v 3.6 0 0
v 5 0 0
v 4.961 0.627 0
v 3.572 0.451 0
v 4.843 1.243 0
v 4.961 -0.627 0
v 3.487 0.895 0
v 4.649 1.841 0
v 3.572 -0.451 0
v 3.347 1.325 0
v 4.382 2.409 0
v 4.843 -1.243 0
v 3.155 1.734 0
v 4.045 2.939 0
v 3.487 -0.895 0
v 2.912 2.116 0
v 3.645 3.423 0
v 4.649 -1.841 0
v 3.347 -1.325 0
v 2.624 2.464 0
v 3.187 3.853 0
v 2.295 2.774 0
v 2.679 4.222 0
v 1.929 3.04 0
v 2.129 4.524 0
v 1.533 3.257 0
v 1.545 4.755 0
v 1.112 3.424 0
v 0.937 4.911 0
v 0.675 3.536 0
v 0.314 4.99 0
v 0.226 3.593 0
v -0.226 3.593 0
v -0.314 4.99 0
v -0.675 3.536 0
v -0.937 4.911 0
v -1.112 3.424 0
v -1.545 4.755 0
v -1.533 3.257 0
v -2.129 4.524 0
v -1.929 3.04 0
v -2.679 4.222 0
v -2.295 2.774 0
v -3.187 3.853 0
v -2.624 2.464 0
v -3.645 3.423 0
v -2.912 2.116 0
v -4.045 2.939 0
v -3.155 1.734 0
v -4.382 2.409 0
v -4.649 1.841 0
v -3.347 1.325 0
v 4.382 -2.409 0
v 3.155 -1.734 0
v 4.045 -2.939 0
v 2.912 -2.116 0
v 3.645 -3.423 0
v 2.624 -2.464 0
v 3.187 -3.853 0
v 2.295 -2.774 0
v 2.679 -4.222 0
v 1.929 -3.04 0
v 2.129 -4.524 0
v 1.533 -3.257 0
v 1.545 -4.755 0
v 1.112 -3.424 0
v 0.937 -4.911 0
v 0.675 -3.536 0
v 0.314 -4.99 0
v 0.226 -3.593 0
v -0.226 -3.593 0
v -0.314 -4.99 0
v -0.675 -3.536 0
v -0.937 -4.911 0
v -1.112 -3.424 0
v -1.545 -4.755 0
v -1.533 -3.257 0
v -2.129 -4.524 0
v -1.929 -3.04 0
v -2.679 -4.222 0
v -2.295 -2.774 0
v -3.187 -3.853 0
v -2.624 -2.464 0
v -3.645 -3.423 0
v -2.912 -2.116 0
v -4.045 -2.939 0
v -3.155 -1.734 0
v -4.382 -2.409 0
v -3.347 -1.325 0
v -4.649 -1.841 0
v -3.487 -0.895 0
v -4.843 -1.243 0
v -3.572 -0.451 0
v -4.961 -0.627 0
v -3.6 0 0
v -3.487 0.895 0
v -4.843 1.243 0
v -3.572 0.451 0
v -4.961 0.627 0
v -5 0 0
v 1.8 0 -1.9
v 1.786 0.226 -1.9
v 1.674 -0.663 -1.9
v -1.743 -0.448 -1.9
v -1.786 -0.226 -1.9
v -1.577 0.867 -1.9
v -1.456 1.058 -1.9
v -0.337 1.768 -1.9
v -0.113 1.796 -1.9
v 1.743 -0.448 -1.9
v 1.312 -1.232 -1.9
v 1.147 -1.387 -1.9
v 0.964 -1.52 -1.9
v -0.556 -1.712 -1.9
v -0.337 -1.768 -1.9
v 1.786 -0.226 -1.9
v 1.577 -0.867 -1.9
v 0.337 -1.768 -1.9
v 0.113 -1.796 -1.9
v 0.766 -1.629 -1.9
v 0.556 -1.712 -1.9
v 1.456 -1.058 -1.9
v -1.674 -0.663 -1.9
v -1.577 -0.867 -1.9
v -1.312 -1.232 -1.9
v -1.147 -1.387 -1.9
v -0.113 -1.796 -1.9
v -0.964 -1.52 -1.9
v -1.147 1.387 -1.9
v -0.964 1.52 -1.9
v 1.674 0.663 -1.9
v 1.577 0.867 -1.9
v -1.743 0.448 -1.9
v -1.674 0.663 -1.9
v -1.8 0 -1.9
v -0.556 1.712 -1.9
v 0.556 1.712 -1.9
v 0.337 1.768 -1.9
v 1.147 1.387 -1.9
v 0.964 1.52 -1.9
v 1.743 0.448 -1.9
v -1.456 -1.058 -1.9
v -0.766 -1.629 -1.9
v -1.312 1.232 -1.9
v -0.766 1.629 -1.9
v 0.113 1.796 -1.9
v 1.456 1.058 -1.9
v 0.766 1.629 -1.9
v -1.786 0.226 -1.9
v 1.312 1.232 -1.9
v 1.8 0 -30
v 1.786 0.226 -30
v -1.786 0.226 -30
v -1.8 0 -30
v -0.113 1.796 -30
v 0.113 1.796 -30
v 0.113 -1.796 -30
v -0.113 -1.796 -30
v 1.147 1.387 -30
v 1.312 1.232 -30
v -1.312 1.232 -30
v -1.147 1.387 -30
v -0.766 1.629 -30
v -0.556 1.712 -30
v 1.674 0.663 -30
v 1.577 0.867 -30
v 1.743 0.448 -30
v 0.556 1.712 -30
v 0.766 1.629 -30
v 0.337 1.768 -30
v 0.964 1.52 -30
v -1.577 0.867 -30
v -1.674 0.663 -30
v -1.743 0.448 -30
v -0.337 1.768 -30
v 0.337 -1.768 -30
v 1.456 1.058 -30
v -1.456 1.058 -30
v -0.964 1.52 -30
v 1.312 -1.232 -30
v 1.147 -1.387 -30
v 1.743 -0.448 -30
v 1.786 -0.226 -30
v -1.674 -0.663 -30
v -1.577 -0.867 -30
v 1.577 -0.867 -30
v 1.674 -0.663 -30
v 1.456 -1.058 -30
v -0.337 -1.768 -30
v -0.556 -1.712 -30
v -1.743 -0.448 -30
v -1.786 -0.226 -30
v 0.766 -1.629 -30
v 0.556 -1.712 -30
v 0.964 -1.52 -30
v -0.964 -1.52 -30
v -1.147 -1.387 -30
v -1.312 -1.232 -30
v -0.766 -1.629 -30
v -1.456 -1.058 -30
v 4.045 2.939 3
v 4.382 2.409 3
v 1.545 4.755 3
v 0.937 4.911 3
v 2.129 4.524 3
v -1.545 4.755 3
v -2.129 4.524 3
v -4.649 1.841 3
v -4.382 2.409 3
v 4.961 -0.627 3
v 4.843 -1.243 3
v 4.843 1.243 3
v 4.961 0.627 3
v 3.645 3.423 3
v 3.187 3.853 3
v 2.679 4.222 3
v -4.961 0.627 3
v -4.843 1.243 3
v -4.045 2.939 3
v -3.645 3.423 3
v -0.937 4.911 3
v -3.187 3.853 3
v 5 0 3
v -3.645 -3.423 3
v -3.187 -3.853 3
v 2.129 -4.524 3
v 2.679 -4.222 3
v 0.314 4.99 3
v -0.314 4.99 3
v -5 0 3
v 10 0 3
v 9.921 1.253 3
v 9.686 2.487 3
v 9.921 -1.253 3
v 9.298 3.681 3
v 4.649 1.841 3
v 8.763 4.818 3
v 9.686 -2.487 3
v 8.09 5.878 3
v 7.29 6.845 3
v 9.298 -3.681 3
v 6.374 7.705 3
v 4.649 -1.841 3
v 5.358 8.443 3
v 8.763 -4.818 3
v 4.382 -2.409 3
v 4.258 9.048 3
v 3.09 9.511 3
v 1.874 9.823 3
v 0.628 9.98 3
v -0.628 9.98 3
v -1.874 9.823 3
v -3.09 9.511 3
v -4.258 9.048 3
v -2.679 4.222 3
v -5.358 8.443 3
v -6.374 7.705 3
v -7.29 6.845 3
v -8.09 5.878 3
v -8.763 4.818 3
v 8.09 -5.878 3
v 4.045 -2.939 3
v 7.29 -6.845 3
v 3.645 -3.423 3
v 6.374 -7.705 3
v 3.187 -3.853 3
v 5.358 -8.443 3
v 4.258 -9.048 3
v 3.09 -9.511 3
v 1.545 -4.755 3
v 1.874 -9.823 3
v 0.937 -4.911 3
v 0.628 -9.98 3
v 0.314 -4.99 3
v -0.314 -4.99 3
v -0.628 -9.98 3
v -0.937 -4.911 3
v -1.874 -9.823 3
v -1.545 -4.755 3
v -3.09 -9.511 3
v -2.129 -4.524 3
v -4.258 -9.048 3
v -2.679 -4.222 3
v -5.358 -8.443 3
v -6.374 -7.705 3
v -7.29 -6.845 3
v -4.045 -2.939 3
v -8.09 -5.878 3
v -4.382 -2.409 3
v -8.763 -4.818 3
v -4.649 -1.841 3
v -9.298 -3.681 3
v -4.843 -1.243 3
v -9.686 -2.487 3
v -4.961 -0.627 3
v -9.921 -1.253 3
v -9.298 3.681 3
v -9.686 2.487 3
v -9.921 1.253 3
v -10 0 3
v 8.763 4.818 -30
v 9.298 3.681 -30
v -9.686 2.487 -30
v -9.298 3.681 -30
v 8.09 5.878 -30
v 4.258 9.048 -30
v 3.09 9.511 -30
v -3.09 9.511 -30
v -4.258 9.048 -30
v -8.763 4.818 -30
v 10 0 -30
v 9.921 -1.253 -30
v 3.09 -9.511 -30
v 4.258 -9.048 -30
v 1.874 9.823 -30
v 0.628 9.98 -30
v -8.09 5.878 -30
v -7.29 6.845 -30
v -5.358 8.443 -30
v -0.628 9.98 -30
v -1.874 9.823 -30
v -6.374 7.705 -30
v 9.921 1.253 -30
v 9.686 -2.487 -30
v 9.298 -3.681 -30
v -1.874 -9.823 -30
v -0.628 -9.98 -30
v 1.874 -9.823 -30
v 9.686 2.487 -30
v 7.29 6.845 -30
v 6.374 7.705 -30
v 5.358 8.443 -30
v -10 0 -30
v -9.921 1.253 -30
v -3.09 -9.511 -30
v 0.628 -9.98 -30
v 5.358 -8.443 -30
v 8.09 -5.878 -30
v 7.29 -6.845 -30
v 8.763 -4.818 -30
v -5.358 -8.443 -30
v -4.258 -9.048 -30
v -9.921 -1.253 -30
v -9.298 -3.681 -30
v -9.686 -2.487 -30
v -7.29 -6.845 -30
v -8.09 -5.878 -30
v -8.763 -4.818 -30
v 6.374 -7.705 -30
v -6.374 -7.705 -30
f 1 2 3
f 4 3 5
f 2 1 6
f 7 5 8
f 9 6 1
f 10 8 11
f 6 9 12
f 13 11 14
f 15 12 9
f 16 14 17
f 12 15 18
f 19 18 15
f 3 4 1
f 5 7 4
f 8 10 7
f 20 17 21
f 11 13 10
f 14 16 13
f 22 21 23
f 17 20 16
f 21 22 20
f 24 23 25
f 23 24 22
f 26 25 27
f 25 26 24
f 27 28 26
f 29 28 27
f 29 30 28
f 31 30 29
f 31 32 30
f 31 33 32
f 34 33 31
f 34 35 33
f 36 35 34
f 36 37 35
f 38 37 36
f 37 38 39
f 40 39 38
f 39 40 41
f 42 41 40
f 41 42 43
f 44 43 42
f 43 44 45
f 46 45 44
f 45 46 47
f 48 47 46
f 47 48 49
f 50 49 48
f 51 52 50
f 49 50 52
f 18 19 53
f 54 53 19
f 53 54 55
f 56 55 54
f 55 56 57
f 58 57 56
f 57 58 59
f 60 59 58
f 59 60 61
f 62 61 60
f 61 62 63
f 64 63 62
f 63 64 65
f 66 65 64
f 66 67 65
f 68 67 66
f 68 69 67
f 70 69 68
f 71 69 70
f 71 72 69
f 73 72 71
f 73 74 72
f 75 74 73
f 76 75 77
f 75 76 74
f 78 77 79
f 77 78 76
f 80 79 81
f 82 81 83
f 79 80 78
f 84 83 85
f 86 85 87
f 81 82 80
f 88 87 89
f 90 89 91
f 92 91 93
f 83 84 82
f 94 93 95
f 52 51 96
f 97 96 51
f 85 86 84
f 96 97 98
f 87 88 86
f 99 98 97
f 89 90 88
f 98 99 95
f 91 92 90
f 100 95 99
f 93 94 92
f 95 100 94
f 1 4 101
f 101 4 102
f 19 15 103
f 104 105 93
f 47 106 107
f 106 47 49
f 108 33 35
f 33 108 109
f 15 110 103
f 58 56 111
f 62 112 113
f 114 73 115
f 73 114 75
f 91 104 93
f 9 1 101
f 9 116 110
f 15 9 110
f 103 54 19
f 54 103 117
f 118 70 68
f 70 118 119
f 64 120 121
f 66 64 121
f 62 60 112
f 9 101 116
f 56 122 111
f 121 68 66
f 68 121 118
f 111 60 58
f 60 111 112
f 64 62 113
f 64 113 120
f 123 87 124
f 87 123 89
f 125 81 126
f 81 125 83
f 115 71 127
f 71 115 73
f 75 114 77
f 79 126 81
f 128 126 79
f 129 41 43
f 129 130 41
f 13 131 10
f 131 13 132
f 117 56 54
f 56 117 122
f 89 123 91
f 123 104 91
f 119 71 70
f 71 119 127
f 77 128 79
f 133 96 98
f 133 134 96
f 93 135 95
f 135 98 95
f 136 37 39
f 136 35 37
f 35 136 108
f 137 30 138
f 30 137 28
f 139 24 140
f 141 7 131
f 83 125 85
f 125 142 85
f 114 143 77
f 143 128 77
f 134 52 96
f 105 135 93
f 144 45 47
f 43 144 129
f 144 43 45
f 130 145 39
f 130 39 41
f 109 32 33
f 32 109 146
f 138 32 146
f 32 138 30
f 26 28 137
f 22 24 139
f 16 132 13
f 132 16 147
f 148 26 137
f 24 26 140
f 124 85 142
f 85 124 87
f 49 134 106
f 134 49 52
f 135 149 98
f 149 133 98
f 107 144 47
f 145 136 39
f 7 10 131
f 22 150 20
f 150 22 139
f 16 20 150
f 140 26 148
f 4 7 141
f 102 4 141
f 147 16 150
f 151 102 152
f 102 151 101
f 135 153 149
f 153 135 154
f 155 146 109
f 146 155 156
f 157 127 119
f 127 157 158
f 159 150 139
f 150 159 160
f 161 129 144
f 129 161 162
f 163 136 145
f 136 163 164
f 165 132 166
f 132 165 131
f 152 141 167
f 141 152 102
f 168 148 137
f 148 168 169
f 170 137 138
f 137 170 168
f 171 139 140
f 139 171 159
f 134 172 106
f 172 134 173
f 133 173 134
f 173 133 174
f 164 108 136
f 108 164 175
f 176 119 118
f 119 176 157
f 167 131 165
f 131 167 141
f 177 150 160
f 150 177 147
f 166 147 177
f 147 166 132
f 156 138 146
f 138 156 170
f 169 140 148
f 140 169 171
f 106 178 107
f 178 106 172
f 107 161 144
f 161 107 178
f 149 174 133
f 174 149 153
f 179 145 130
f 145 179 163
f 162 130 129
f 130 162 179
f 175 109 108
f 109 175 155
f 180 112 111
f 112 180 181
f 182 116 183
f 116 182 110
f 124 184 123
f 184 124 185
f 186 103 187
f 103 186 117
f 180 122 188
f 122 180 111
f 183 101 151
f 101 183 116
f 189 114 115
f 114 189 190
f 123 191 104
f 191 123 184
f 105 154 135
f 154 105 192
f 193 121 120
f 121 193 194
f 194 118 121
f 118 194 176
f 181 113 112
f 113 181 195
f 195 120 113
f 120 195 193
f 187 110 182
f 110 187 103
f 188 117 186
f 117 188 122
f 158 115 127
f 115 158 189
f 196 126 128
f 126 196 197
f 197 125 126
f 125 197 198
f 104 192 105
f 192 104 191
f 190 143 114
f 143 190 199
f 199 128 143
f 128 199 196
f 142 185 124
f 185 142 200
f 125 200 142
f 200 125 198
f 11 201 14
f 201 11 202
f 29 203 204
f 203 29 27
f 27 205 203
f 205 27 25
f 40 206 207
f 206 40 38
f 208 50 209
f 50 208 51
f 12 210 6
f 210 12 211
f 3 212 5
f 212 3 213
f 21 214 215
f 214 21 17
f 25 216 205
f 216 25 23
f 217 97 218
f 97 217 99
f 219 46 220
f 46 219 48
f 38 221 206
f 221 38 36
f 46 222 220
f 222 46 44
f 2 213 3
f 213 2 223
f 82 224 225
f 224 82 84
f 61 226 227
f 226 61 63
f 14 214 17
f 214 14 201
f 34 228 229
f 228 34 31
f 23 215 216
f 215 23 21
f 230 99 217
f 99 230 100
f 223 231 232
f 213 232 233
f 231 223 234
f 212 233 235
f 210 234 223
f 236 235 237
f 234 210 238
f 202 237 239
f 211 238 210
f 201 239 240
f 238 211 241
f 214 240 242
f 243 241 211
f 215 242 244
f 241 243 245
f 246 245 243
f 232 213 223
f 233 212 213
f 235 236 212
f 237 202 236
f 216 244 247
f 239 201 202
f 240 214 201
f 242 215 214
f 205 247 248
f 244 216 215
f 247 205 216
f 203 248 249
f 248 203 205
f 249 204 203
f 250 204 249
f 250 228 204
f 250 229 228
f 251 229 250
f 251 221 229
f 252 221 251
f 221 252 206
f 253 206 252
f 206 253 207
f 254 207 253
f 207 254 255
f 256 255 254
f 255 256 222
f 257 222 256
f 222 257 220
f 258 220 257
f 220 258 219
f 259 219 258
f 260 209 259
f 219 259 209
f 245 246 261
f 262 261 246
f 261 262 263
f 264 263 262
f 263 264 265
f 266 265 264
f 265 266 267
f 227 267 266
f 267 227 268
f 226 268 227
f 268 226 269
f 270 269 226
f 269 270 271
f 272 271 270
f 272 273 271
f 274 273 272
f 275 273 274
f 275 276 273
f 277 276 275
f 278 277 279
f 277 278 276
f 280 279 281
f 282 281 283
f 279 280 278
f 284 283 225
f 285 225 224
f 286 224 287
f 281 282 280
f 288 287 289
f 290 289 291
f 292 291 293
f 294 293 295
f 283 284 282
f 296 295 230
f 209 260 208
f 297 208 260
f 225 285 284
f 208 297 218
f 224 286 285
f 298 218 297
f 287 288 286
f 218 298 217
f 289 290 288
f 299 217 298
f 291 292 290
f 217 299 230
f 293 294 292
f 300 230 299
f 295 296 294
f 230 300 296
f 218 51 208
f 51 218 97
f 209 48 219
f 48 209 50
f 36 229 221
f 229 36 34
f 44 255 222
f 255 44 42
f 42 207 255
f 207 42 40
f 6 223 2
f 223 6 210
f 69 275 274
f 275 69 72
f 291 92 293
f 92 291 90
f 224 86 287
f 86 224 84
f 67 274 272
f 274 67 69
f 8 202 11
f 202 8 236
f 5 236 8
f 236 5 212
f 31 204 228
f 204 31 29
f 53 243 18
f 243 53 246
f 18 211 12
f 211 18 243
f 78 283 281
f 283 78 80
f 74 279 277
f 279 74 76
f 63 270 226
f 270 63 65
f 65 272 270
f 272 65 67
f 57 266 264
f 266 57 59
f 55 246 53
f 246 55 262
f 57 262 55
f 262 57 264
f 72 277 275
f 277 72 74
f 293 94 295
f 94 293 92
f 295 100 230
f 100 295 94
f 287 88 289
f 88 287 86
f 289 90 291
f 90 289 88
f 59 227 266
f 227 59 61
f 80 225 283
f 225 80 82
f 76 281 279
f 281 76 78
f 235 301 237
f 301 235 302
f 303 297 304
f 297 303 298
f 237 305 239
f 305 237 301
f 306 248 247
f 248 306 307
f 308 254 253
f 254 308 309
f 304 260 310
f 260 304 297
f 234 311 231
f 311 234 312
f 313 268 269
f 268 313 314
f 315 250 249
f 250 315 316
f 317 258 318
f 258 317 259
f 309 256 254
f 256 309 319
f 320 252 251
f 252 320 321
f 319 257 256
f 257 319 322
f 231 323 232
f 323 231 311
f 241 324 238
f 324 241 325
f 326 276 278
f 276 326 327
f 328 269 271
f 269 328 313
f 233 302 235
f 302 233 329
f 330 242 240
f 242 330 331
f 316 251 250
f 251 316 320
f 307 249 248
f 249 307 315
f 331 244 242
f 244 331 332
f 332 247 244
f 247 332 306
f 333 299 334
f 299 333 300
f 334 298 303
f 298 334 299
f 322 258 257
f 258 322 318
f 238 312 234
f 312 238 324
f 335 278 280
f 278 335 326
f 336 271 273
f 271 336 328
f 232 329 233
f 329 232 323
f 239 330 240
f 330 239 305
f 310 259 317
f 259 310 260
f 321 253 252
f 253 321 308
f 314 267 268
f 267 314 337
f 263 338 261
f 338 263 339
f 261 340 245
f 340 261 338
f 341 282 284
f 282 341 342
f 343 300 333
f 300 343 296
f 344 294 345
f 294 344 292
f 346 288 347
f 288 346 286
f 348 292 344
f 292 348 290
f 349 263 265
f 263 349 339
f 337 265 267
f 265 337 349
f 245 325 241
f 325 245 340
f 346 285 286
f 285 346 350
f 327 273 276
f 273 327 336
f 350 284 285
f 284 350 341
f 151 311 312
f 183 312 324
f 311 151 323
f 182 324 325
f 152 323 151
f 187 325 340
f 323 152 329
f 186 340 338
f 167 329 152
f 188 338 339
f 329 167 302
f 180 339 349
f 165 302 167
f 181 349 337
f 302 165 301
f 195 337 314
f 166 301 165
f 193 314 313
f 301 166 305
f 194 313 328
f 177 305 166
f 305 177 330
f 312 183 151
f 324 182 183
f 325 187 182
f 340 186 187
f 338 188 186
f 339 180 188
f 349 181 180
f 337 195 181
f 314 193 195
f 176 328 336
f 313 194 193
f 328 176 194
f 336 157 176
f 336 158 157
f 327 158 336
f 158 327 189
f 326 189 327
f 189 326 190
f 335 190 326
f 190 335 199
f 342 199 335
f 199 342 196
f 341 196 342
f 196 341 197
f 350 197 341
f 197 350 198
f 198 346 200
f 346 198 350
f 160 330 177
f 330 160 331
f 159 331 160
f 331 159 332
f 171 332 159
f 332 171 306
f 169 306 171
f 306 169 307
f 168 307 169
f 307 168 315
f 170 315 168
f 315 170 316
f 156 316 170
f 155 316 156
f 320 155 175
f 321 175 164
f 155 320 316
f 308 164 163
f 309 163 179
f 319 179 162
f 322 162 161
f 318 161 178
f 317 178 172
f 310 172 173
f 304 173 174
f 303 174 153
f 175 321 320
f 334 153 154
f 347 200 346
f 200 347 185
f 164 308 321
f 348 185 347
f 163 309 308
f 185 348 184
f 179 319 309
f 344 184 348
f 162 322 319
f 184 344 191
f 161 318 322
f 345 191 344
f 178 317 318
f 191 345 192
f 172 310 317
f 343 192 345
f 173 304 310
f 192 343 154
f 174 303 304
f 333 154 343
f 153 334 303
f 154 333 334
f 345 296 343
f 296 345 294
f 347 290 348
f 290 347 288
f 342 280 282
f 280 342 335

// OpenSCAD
$fn = 50;

difference() {
	union() {
		translate(v = [0, 0, -30.0]) {
			cylinder(h = 33, r = 10.0);
		}
	}
	union() {
		translate(v = [0, 0, 0]) {
			rotate(a = [0, 0, 0]) {
				difference() {
					union() {
						translate(v = [0, 0, -33.0]) {
							cylinder(h = 33, r = 1.5);
						}
						translate(v = [0, 0, -1.9]) {
							cylinder(h = 1.9, r1 = 1.8, r2 = 3.6);
						}
						translate(v = [0, 0, -33.0]) {
							cylinder(h = 33, r = 1.8);
						}
						translate(v = [0, 0, -33.0]) {
							cylinder(h = 33, r = 1.5);
						}
					}
					union();
				}
			}
		}
		#cylinder(h = 3, r = 5.0);
	}
}
